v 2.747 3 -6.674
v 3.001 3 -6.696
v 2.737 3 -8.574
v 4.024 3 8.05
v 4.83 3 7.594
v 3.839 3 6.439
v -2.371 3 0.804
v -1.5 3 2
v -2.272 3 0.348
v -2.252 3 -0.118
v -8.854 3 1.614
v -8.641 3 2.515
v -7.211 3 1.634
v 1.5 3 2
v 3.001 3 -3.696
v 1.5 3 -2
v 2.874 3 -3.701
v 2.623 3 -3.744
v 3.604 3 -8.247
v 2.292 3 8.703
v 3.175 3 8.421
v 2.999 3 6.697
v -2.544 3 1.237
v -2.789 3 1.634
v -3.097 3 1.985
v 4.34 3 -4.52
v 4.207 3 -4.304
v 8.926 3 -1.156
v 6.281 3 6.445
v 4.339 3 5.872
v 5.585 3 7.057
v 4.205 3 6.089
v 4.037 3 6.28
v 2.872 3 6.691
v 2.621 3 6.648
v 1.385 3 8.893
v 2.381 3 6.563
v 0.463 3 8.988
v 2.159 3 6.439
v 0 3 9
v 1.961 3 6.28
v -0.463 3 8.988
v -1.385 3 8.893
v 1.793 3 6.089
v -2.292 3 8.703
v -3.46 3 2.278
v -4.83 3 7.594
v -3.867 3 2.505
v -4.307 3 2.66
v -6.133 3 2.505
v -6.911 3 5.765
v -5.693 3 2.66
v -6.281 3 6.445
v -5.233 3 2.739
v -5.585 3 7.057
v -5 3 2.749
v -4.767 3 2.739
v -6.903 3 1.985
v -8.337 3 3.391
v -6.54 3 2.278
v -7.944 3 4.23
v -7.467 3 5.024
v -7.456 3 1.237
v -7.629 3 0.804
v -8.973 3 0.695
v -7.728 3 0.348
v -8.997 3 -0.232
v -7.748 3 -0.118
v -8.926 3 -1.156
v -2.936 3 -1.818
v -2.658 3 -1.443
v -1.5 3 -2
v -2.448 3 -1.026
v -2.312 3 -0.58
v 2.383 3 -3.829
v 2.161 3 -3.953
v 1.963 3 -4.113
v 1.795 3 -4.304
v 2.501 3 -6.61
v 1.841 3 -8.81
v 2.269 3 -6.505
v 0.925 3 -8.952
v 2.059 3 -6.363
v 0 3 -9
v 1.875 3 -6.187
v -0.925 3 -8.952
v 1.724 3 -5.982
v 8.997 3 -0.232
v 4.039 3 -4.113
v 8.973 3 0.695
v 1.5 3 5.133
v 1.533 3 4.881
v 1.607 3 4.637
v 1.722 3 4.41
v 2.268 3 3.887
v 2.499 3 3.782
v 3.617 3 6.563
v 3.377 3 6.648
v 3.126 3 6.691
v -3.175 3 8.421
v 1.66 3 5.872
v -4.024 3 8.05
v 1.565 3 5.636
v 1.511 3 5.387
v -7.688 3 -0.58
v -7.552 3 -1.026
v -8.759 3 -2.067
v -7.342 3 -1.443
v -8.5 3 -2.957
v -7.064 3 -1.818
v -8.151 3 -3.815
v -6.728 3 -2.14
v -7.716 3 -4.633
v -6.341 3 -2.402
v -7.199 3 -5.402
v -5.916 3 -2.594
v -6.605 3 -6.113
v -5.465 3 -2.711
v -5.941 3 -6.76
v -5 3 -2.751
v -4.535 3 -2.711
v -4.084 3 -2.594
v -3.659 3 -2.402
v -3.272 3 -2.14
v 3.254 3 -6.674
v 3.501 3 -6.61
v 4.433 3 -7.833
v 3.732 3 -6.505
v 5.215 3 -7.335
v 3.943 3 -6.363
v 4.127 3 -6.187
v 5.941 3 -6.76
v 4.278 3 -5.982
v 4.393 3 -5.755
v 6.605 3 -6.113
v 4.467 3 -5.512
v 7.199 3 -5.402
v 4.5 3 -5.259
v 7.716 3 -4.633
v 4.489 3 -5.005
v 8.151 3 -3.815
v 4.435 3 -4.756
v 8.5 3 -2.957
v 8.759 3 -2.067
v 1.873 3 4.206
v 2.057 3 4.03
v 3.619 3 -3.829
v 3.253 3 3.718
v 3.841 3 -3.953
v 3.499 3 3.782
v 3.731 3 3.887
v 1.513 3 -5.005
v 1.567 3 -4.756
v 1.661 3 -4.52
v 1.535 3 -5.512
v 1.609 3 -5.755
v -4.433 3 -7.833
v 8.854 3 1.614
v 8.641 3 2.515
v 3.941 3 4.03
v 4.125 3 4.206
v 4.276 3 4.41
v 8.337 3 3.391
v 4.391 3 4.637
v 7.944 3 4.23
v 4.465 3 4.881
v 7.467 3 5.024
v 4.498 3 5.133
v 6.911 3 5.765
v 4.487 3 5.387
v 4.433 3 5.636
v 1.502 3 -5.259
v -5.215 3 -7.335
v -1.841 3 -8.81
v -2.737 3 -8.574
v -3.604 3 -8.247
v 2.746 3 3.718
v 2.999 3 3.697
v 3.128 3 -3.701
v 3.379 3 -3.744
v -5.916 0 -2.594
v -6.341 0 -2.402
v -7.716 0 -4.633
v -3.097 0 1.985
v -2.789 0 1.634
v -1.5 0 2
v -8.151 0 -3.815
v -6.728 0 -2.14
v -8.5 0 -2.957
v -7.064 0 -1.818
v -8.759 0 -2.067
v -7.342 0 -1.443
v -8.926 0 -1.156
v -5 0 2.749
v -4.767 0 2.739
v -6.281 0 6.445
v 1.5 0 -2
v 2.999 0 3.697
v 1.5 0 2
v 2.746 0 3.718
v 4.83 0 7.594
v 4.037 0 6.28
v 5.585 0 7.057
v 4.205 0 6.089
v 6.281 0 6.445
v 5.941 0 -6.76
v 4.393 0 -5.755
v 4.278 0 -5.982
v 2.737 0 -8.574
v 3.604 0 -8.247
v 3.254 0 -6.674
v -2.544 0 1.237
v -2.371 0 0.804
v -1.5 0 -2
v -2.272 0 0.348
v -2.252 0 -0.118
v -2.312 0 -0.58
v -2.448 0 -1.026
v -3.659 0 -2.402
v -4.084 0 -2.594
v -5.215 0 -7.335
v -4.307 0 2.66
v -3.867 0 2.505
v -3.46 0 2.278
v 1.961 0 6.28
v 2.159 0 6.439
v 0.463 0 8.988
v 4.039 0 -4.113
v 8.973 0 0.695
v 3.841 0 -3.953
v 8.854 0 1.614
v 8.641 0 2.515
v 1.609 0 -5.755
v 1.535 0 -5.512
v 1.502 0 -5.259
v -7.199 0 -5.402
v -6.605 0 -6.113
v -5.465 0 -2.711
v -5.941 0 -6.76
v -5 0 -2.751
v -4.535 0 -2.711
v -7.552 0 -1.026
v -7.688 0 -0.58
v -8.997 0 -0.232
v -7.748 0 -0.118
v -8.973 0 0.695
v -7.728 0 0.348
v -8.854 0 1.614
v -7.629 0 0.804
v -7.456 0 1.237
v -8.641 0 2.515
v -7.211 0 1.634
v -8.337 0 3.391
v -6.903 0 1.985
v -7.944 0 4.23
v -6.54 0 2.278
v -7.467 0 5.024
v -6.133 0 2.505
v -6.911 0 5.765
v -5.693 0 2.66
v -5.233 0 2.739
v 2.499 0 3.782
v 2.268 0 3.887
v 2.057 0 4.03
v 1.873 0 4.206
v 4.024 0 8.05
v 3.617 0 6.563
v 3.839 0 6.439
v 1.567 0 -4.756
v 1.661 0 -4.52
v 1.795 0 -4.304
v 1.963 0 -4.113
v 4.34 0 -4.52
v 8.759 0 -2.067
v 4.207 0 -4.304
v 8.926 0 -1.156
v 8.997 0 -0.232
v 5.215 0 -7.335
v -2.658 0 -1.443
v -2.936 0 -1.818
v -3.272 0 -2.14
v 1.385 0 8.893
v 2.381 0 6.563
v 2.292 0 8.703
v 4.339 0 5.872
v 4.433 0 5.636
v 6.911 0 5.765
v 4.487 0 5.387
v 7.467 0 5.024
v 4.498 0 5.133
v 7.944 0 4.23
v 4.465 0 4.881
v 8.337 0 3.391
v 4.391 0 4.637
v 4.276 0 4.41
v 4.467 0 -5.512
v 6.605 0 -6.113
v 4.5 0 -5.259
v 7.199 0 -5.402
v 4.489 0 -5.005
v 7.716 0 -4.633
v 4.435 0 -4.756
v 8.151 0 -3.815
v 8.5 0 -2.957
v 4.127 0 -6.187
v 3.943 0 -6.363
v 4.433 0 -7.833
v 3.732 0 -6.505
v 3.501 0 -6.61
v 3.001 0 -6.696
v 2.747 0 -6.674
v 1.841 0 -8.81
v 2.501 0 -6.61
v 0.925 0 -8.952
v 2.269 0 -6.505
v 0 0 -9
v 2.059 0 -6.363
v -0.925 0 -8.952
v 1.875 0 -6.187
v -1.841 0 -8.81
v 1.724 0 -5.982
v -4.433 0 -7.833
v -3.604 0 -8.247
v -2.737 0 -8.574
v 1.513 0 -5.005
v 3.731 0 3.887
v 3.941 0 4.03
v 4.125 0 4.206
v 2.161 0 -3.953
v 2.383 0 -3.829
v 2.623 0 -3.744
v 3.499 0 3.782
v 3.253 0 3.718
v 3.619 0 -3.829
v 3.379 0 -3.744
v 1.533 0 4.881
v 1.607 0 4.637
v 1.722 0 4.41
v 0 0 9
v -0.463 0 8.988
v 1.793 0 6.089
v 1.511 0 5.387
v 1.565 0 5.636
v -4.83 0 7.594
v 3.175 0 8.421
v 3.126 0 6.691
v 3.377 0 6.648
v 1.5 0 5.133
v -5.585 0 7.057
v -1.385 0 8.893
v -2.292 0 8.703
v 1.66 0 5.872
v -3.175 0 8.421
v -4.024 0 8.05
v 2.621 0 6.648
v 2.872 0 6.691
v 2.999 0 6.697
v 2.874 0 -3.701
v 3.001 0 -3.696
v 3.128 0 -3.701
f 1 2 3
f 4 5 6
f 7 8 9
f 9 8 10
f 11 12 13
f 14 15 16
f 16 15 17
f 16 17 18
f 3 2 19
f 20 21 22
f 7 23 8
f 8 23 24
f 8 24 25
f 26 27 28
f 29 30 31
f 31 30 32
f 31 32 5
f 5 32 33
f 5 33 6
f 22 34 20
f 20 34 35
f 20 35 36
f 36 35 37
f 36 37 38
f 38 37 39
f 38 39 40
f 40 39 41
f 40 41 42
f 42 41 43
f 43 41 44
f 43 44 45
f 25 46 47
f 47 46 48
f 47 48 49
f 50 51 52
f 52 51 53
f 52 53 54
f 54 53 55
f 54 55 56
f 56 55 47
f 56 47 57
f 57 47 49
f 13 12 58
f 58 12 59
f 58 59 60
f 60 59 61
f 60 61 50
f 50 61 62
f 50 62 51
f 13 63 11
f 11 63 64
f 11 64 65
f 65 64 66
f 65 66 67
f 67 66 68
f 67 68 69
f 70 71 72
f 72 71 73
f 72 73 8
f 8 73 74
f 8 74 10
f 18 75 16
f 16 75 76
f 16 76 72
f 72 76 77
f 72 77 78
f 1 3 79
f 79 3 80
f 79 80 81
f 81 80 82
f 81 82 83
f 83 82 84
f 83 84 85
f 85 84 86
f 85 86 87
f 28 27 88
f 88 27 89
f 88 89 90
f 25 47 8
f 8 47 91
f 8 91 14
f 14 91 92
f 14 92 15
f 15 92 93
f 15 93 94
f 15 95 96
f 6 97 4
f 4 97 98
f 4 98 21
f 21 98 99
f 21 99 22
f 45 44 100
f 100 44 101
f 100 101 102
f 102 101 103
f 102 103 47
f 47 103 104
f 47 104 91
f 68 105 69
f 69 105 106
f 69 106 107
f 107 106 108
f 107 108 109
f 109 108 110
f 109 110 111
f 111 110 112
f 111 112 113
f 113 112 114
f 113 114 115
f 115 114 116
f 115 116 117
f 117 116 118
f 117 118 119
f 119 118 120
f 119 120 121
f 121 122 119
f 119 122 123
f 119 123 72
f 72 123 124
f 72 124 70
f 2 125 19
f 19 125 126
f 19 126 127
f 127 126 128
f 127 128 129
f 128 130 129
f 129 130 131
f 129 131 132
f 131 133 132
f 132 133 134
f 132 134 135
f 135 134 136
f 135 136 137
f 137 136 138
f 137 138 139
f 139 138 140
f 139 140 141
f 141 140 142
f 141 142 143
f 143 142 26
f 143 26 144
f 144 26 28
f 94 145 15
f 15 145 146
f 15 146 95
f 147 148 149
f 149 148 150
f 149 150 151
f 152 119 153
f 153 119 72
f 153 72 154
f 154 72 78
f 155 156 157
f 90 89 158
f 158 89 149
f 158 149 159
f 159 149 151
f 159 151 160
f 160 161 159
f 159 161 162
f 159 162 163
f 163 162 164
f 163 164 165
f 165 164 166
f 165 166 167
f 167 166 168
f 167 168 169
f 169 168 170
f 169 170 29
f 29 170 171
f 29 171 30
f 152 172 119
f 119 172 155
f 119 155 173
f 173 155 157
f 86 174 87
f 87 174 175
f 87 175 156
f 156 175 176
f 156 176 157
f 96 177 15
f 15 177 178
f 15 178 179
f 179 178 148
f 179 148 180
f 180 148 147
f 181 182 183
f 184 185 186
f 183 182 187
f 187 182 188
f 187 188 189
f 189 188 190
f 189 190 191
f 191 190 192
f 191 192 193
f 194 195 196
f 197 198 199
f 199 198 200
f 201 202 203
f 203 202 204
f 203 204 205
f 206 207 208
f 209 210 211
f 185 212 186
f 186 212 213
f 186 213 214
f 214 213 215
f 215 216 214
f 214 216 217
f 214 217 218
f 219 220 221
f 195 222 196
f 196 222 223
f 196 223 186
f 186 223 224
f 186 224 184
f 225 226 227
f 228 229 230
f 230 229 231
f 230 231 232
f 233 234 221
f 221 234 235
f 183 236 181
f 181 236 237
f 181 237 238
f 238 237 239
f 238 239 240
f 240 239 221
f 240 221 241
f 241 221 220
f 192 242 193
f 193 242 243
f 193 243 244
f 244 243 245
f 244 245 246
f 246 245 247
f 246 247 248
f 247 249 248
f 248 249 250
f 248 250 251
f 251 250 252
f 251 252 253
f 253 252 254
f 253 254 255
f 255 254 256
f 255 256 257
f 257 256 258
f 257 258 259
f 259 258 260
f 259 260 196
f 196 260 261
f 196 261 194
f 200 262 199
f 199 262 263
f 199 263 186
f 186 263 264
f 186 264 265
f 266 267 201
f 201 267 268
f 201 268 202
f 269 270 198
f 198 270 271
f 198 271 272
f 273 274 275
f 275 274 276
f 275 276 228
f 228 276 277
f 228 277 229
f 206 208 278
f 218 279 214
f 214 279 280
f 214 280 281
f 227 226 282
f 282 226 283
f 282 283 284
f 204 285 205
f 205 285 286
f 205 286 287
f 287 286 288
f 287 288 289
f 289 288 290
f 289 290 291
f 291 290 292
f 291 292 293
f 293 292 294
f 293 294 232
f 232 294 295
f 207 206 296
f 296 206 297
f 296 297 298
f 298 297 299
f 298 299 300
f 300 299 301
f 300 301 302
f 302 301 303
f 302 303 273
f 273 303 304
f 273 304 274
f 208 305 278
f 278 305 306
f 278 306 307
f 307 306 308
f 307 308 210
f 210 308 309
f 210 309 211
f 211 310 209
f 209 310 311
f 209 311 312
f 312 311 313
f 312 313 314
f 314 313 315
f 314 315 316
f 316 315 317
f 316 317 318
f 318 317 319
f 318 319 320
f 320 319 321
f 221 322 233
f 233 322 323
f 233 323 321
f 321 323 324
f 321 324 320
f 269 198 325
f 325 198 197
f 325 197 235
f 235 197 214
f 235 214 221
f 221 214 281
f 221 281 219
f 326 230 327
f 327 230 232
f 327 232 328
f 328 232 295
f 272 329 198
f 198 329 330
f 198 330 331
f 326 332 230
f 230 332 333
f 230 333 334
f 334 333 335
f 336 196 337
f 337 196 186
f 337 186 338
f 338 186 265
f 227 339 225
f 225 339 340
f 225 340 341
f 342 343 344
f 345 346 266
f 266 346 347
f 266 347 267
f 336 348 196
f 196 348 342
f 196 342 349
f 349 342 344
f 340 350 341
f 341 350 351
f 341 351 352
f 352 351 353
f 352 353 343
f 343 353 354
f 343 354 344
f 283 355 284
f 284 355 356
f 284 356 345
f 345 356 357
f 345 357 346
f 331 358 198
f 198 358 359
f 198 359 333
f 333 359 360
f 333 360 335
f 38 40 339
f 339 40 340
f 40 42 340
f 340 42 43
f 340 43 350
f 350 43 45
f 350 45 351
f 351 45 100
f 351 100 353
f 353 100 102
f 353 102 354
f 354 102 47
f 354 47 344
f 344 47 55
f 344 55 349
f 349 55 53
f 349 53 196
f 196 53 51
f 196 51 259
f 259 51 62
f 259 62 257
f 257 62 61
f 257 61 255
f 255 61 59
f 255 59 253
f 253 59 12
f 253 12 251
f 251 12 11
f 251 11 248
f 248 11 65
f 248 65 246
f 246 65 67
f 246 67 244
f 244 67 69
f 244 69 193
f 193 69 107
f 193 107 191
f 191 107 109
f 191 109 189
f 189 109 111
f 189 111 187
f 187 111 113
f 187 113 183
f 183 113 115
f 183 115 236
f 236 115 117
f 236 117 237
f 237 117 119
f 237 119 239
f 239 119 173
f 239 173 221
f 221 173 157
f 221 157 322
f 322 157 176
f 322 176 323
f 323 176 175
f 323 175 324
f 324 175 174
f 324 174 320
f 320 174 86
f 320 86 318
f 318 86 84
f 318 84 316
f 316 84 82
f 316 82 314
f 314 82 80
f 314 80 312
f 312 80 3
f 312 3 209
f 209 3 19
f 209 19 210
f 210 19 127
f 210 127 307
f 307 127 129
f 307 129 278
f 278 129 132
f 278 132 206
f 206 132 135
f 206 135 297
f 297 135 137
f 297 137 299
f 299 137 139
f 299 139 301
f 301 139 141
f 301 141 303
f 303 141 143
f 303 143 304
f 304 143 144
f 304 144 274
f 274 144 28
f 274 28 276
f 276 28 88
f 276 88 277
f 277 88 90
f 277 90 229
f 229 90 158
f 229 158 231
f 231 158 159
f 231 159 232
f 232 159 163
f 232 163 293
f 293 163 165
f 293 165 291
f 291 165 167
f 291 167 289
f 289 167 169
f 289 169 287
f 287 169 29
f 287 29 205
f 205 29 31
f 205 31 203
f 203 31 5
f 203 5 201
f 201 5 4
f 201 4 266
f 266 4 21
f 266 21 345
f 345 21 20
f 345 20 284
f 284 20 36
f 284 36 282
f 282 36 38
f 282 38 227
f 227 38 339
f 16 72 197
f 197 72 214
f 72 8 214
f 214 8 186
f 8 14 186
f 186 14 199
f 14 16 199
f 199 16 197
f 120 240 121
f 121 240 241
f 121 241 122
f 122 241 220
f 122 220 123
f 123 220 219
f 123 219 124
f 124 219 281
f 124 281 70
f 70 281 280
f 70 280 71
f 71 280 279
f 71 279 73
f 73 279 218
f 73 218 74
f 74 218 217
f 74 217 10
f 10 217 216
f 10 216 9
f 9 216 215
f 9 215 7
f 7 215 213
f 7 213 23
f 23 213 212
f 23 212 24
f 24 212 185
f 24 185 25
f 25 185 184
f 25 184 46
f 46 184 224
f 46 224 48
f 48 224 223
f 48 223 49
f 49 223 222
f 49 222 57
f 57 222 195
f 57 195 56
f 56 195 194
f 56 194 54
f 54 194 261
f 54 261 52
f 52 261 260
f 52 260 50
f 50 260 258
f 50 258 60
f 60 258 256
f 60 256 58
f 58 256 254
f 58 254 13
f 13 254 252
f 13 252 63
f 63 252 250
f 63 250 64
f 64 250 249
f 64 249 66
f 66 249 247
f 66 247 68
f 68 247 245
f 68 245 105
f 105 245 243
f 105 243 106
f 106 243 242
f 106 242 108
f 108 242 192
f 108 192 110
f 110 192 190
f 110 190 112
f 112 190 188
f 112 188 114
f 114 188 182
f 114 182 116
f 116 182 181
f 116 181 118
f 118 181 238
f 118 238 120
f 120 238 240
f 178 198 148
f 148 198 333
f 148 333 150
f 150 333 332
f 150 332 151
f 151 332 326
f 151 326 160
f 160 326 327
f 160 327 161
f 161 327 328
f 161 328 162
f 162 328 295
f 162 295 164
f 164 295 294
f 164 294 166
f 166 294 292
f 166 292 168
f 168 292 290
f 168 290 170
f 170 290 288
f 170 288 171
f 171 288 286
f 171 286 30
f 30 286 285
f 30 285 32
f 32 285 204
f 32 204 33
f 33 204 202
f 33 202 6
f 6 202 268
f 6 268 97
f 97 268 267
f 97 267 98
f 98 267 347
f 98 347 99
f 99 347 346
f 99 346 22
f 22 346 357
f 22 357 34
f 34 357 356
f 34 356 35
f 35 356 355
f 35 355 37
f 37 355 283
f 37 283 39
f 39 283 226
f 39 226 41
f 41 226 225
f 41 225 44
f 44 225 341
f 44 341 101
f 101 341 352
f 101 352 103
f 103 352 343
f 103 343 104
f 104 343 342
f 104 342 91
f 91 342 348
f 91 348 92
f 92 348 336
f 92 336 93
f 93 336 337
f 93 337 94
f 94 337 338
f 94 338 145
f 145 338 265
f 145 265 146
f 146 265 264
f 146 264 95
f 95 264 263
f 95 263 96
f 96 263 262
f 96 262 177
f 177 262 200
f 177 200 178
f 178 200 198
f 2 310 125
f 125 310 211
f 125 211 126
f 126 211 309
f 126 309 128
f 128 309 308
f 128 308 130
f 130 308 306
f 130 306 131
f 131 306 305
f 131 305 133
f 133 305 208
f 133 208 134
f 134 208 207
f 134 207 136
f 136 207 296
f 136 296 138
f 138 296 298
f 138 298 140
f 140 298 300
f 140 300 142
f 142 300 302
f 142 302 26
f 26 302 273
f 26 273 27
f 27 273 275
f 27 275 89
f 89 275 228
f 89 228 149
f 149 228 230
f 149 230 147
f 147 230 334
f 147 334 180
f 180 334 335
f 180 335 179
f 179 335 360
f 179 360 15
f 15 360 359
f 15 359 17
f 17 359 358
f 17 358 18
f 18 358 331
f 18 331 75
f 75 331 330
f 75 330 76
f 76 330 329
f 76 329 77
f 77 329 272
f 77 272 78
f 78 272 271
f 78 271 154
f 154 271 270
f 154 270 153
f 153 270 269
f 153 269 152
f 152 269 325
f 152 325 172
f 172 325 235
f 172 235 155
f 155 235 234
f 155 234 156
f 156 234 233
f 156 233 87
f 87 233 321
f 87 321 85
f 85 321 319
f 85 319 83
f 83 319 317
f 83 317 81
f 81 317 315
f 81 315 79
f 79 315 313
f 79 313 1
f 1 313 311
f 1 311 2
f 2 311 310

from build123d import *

# Parameters (mm, degrees)
SKETCH1_R           = 9
SKETCH1_R_2         = 2.75
SKETCH1_R_3         = 1.5
SKETCH1_W           = 3
SKETCH1_H           = 4
BOSS_EXTRUDE1_DEPTH = 3


with BuildPart() as part:
    # Sketch1 → Boss-Extrude1 (new body)
    with BuildSketch(Plane(origin=(0, 0, 0), x_dir=(1, 0, 0), z_dir=(0, 1, 0))):
        Circle(SKETCH1_R)
        with Locations((-5, 0.000835232)):
            Circle(SKETCH1_R_2, mode=Mode.SUBTRACT)
        with Locations((2.999131959, -5.19665349)):
            Circle(SKETCH1_R_3, mode=Mode.SUBTRACT)
        with Locations((3.000867957, 5.195651211)):
            Circle(SKETCH1_R_3, mode=Mode.SUBTRACT)
        Rectangle(SKETCH1_W, SKETCH1_H, mode=Mode.SUBTRACT)
    extrude(amount=BOSS_EXTRUDE1_DEPTH)


solid = part.part
